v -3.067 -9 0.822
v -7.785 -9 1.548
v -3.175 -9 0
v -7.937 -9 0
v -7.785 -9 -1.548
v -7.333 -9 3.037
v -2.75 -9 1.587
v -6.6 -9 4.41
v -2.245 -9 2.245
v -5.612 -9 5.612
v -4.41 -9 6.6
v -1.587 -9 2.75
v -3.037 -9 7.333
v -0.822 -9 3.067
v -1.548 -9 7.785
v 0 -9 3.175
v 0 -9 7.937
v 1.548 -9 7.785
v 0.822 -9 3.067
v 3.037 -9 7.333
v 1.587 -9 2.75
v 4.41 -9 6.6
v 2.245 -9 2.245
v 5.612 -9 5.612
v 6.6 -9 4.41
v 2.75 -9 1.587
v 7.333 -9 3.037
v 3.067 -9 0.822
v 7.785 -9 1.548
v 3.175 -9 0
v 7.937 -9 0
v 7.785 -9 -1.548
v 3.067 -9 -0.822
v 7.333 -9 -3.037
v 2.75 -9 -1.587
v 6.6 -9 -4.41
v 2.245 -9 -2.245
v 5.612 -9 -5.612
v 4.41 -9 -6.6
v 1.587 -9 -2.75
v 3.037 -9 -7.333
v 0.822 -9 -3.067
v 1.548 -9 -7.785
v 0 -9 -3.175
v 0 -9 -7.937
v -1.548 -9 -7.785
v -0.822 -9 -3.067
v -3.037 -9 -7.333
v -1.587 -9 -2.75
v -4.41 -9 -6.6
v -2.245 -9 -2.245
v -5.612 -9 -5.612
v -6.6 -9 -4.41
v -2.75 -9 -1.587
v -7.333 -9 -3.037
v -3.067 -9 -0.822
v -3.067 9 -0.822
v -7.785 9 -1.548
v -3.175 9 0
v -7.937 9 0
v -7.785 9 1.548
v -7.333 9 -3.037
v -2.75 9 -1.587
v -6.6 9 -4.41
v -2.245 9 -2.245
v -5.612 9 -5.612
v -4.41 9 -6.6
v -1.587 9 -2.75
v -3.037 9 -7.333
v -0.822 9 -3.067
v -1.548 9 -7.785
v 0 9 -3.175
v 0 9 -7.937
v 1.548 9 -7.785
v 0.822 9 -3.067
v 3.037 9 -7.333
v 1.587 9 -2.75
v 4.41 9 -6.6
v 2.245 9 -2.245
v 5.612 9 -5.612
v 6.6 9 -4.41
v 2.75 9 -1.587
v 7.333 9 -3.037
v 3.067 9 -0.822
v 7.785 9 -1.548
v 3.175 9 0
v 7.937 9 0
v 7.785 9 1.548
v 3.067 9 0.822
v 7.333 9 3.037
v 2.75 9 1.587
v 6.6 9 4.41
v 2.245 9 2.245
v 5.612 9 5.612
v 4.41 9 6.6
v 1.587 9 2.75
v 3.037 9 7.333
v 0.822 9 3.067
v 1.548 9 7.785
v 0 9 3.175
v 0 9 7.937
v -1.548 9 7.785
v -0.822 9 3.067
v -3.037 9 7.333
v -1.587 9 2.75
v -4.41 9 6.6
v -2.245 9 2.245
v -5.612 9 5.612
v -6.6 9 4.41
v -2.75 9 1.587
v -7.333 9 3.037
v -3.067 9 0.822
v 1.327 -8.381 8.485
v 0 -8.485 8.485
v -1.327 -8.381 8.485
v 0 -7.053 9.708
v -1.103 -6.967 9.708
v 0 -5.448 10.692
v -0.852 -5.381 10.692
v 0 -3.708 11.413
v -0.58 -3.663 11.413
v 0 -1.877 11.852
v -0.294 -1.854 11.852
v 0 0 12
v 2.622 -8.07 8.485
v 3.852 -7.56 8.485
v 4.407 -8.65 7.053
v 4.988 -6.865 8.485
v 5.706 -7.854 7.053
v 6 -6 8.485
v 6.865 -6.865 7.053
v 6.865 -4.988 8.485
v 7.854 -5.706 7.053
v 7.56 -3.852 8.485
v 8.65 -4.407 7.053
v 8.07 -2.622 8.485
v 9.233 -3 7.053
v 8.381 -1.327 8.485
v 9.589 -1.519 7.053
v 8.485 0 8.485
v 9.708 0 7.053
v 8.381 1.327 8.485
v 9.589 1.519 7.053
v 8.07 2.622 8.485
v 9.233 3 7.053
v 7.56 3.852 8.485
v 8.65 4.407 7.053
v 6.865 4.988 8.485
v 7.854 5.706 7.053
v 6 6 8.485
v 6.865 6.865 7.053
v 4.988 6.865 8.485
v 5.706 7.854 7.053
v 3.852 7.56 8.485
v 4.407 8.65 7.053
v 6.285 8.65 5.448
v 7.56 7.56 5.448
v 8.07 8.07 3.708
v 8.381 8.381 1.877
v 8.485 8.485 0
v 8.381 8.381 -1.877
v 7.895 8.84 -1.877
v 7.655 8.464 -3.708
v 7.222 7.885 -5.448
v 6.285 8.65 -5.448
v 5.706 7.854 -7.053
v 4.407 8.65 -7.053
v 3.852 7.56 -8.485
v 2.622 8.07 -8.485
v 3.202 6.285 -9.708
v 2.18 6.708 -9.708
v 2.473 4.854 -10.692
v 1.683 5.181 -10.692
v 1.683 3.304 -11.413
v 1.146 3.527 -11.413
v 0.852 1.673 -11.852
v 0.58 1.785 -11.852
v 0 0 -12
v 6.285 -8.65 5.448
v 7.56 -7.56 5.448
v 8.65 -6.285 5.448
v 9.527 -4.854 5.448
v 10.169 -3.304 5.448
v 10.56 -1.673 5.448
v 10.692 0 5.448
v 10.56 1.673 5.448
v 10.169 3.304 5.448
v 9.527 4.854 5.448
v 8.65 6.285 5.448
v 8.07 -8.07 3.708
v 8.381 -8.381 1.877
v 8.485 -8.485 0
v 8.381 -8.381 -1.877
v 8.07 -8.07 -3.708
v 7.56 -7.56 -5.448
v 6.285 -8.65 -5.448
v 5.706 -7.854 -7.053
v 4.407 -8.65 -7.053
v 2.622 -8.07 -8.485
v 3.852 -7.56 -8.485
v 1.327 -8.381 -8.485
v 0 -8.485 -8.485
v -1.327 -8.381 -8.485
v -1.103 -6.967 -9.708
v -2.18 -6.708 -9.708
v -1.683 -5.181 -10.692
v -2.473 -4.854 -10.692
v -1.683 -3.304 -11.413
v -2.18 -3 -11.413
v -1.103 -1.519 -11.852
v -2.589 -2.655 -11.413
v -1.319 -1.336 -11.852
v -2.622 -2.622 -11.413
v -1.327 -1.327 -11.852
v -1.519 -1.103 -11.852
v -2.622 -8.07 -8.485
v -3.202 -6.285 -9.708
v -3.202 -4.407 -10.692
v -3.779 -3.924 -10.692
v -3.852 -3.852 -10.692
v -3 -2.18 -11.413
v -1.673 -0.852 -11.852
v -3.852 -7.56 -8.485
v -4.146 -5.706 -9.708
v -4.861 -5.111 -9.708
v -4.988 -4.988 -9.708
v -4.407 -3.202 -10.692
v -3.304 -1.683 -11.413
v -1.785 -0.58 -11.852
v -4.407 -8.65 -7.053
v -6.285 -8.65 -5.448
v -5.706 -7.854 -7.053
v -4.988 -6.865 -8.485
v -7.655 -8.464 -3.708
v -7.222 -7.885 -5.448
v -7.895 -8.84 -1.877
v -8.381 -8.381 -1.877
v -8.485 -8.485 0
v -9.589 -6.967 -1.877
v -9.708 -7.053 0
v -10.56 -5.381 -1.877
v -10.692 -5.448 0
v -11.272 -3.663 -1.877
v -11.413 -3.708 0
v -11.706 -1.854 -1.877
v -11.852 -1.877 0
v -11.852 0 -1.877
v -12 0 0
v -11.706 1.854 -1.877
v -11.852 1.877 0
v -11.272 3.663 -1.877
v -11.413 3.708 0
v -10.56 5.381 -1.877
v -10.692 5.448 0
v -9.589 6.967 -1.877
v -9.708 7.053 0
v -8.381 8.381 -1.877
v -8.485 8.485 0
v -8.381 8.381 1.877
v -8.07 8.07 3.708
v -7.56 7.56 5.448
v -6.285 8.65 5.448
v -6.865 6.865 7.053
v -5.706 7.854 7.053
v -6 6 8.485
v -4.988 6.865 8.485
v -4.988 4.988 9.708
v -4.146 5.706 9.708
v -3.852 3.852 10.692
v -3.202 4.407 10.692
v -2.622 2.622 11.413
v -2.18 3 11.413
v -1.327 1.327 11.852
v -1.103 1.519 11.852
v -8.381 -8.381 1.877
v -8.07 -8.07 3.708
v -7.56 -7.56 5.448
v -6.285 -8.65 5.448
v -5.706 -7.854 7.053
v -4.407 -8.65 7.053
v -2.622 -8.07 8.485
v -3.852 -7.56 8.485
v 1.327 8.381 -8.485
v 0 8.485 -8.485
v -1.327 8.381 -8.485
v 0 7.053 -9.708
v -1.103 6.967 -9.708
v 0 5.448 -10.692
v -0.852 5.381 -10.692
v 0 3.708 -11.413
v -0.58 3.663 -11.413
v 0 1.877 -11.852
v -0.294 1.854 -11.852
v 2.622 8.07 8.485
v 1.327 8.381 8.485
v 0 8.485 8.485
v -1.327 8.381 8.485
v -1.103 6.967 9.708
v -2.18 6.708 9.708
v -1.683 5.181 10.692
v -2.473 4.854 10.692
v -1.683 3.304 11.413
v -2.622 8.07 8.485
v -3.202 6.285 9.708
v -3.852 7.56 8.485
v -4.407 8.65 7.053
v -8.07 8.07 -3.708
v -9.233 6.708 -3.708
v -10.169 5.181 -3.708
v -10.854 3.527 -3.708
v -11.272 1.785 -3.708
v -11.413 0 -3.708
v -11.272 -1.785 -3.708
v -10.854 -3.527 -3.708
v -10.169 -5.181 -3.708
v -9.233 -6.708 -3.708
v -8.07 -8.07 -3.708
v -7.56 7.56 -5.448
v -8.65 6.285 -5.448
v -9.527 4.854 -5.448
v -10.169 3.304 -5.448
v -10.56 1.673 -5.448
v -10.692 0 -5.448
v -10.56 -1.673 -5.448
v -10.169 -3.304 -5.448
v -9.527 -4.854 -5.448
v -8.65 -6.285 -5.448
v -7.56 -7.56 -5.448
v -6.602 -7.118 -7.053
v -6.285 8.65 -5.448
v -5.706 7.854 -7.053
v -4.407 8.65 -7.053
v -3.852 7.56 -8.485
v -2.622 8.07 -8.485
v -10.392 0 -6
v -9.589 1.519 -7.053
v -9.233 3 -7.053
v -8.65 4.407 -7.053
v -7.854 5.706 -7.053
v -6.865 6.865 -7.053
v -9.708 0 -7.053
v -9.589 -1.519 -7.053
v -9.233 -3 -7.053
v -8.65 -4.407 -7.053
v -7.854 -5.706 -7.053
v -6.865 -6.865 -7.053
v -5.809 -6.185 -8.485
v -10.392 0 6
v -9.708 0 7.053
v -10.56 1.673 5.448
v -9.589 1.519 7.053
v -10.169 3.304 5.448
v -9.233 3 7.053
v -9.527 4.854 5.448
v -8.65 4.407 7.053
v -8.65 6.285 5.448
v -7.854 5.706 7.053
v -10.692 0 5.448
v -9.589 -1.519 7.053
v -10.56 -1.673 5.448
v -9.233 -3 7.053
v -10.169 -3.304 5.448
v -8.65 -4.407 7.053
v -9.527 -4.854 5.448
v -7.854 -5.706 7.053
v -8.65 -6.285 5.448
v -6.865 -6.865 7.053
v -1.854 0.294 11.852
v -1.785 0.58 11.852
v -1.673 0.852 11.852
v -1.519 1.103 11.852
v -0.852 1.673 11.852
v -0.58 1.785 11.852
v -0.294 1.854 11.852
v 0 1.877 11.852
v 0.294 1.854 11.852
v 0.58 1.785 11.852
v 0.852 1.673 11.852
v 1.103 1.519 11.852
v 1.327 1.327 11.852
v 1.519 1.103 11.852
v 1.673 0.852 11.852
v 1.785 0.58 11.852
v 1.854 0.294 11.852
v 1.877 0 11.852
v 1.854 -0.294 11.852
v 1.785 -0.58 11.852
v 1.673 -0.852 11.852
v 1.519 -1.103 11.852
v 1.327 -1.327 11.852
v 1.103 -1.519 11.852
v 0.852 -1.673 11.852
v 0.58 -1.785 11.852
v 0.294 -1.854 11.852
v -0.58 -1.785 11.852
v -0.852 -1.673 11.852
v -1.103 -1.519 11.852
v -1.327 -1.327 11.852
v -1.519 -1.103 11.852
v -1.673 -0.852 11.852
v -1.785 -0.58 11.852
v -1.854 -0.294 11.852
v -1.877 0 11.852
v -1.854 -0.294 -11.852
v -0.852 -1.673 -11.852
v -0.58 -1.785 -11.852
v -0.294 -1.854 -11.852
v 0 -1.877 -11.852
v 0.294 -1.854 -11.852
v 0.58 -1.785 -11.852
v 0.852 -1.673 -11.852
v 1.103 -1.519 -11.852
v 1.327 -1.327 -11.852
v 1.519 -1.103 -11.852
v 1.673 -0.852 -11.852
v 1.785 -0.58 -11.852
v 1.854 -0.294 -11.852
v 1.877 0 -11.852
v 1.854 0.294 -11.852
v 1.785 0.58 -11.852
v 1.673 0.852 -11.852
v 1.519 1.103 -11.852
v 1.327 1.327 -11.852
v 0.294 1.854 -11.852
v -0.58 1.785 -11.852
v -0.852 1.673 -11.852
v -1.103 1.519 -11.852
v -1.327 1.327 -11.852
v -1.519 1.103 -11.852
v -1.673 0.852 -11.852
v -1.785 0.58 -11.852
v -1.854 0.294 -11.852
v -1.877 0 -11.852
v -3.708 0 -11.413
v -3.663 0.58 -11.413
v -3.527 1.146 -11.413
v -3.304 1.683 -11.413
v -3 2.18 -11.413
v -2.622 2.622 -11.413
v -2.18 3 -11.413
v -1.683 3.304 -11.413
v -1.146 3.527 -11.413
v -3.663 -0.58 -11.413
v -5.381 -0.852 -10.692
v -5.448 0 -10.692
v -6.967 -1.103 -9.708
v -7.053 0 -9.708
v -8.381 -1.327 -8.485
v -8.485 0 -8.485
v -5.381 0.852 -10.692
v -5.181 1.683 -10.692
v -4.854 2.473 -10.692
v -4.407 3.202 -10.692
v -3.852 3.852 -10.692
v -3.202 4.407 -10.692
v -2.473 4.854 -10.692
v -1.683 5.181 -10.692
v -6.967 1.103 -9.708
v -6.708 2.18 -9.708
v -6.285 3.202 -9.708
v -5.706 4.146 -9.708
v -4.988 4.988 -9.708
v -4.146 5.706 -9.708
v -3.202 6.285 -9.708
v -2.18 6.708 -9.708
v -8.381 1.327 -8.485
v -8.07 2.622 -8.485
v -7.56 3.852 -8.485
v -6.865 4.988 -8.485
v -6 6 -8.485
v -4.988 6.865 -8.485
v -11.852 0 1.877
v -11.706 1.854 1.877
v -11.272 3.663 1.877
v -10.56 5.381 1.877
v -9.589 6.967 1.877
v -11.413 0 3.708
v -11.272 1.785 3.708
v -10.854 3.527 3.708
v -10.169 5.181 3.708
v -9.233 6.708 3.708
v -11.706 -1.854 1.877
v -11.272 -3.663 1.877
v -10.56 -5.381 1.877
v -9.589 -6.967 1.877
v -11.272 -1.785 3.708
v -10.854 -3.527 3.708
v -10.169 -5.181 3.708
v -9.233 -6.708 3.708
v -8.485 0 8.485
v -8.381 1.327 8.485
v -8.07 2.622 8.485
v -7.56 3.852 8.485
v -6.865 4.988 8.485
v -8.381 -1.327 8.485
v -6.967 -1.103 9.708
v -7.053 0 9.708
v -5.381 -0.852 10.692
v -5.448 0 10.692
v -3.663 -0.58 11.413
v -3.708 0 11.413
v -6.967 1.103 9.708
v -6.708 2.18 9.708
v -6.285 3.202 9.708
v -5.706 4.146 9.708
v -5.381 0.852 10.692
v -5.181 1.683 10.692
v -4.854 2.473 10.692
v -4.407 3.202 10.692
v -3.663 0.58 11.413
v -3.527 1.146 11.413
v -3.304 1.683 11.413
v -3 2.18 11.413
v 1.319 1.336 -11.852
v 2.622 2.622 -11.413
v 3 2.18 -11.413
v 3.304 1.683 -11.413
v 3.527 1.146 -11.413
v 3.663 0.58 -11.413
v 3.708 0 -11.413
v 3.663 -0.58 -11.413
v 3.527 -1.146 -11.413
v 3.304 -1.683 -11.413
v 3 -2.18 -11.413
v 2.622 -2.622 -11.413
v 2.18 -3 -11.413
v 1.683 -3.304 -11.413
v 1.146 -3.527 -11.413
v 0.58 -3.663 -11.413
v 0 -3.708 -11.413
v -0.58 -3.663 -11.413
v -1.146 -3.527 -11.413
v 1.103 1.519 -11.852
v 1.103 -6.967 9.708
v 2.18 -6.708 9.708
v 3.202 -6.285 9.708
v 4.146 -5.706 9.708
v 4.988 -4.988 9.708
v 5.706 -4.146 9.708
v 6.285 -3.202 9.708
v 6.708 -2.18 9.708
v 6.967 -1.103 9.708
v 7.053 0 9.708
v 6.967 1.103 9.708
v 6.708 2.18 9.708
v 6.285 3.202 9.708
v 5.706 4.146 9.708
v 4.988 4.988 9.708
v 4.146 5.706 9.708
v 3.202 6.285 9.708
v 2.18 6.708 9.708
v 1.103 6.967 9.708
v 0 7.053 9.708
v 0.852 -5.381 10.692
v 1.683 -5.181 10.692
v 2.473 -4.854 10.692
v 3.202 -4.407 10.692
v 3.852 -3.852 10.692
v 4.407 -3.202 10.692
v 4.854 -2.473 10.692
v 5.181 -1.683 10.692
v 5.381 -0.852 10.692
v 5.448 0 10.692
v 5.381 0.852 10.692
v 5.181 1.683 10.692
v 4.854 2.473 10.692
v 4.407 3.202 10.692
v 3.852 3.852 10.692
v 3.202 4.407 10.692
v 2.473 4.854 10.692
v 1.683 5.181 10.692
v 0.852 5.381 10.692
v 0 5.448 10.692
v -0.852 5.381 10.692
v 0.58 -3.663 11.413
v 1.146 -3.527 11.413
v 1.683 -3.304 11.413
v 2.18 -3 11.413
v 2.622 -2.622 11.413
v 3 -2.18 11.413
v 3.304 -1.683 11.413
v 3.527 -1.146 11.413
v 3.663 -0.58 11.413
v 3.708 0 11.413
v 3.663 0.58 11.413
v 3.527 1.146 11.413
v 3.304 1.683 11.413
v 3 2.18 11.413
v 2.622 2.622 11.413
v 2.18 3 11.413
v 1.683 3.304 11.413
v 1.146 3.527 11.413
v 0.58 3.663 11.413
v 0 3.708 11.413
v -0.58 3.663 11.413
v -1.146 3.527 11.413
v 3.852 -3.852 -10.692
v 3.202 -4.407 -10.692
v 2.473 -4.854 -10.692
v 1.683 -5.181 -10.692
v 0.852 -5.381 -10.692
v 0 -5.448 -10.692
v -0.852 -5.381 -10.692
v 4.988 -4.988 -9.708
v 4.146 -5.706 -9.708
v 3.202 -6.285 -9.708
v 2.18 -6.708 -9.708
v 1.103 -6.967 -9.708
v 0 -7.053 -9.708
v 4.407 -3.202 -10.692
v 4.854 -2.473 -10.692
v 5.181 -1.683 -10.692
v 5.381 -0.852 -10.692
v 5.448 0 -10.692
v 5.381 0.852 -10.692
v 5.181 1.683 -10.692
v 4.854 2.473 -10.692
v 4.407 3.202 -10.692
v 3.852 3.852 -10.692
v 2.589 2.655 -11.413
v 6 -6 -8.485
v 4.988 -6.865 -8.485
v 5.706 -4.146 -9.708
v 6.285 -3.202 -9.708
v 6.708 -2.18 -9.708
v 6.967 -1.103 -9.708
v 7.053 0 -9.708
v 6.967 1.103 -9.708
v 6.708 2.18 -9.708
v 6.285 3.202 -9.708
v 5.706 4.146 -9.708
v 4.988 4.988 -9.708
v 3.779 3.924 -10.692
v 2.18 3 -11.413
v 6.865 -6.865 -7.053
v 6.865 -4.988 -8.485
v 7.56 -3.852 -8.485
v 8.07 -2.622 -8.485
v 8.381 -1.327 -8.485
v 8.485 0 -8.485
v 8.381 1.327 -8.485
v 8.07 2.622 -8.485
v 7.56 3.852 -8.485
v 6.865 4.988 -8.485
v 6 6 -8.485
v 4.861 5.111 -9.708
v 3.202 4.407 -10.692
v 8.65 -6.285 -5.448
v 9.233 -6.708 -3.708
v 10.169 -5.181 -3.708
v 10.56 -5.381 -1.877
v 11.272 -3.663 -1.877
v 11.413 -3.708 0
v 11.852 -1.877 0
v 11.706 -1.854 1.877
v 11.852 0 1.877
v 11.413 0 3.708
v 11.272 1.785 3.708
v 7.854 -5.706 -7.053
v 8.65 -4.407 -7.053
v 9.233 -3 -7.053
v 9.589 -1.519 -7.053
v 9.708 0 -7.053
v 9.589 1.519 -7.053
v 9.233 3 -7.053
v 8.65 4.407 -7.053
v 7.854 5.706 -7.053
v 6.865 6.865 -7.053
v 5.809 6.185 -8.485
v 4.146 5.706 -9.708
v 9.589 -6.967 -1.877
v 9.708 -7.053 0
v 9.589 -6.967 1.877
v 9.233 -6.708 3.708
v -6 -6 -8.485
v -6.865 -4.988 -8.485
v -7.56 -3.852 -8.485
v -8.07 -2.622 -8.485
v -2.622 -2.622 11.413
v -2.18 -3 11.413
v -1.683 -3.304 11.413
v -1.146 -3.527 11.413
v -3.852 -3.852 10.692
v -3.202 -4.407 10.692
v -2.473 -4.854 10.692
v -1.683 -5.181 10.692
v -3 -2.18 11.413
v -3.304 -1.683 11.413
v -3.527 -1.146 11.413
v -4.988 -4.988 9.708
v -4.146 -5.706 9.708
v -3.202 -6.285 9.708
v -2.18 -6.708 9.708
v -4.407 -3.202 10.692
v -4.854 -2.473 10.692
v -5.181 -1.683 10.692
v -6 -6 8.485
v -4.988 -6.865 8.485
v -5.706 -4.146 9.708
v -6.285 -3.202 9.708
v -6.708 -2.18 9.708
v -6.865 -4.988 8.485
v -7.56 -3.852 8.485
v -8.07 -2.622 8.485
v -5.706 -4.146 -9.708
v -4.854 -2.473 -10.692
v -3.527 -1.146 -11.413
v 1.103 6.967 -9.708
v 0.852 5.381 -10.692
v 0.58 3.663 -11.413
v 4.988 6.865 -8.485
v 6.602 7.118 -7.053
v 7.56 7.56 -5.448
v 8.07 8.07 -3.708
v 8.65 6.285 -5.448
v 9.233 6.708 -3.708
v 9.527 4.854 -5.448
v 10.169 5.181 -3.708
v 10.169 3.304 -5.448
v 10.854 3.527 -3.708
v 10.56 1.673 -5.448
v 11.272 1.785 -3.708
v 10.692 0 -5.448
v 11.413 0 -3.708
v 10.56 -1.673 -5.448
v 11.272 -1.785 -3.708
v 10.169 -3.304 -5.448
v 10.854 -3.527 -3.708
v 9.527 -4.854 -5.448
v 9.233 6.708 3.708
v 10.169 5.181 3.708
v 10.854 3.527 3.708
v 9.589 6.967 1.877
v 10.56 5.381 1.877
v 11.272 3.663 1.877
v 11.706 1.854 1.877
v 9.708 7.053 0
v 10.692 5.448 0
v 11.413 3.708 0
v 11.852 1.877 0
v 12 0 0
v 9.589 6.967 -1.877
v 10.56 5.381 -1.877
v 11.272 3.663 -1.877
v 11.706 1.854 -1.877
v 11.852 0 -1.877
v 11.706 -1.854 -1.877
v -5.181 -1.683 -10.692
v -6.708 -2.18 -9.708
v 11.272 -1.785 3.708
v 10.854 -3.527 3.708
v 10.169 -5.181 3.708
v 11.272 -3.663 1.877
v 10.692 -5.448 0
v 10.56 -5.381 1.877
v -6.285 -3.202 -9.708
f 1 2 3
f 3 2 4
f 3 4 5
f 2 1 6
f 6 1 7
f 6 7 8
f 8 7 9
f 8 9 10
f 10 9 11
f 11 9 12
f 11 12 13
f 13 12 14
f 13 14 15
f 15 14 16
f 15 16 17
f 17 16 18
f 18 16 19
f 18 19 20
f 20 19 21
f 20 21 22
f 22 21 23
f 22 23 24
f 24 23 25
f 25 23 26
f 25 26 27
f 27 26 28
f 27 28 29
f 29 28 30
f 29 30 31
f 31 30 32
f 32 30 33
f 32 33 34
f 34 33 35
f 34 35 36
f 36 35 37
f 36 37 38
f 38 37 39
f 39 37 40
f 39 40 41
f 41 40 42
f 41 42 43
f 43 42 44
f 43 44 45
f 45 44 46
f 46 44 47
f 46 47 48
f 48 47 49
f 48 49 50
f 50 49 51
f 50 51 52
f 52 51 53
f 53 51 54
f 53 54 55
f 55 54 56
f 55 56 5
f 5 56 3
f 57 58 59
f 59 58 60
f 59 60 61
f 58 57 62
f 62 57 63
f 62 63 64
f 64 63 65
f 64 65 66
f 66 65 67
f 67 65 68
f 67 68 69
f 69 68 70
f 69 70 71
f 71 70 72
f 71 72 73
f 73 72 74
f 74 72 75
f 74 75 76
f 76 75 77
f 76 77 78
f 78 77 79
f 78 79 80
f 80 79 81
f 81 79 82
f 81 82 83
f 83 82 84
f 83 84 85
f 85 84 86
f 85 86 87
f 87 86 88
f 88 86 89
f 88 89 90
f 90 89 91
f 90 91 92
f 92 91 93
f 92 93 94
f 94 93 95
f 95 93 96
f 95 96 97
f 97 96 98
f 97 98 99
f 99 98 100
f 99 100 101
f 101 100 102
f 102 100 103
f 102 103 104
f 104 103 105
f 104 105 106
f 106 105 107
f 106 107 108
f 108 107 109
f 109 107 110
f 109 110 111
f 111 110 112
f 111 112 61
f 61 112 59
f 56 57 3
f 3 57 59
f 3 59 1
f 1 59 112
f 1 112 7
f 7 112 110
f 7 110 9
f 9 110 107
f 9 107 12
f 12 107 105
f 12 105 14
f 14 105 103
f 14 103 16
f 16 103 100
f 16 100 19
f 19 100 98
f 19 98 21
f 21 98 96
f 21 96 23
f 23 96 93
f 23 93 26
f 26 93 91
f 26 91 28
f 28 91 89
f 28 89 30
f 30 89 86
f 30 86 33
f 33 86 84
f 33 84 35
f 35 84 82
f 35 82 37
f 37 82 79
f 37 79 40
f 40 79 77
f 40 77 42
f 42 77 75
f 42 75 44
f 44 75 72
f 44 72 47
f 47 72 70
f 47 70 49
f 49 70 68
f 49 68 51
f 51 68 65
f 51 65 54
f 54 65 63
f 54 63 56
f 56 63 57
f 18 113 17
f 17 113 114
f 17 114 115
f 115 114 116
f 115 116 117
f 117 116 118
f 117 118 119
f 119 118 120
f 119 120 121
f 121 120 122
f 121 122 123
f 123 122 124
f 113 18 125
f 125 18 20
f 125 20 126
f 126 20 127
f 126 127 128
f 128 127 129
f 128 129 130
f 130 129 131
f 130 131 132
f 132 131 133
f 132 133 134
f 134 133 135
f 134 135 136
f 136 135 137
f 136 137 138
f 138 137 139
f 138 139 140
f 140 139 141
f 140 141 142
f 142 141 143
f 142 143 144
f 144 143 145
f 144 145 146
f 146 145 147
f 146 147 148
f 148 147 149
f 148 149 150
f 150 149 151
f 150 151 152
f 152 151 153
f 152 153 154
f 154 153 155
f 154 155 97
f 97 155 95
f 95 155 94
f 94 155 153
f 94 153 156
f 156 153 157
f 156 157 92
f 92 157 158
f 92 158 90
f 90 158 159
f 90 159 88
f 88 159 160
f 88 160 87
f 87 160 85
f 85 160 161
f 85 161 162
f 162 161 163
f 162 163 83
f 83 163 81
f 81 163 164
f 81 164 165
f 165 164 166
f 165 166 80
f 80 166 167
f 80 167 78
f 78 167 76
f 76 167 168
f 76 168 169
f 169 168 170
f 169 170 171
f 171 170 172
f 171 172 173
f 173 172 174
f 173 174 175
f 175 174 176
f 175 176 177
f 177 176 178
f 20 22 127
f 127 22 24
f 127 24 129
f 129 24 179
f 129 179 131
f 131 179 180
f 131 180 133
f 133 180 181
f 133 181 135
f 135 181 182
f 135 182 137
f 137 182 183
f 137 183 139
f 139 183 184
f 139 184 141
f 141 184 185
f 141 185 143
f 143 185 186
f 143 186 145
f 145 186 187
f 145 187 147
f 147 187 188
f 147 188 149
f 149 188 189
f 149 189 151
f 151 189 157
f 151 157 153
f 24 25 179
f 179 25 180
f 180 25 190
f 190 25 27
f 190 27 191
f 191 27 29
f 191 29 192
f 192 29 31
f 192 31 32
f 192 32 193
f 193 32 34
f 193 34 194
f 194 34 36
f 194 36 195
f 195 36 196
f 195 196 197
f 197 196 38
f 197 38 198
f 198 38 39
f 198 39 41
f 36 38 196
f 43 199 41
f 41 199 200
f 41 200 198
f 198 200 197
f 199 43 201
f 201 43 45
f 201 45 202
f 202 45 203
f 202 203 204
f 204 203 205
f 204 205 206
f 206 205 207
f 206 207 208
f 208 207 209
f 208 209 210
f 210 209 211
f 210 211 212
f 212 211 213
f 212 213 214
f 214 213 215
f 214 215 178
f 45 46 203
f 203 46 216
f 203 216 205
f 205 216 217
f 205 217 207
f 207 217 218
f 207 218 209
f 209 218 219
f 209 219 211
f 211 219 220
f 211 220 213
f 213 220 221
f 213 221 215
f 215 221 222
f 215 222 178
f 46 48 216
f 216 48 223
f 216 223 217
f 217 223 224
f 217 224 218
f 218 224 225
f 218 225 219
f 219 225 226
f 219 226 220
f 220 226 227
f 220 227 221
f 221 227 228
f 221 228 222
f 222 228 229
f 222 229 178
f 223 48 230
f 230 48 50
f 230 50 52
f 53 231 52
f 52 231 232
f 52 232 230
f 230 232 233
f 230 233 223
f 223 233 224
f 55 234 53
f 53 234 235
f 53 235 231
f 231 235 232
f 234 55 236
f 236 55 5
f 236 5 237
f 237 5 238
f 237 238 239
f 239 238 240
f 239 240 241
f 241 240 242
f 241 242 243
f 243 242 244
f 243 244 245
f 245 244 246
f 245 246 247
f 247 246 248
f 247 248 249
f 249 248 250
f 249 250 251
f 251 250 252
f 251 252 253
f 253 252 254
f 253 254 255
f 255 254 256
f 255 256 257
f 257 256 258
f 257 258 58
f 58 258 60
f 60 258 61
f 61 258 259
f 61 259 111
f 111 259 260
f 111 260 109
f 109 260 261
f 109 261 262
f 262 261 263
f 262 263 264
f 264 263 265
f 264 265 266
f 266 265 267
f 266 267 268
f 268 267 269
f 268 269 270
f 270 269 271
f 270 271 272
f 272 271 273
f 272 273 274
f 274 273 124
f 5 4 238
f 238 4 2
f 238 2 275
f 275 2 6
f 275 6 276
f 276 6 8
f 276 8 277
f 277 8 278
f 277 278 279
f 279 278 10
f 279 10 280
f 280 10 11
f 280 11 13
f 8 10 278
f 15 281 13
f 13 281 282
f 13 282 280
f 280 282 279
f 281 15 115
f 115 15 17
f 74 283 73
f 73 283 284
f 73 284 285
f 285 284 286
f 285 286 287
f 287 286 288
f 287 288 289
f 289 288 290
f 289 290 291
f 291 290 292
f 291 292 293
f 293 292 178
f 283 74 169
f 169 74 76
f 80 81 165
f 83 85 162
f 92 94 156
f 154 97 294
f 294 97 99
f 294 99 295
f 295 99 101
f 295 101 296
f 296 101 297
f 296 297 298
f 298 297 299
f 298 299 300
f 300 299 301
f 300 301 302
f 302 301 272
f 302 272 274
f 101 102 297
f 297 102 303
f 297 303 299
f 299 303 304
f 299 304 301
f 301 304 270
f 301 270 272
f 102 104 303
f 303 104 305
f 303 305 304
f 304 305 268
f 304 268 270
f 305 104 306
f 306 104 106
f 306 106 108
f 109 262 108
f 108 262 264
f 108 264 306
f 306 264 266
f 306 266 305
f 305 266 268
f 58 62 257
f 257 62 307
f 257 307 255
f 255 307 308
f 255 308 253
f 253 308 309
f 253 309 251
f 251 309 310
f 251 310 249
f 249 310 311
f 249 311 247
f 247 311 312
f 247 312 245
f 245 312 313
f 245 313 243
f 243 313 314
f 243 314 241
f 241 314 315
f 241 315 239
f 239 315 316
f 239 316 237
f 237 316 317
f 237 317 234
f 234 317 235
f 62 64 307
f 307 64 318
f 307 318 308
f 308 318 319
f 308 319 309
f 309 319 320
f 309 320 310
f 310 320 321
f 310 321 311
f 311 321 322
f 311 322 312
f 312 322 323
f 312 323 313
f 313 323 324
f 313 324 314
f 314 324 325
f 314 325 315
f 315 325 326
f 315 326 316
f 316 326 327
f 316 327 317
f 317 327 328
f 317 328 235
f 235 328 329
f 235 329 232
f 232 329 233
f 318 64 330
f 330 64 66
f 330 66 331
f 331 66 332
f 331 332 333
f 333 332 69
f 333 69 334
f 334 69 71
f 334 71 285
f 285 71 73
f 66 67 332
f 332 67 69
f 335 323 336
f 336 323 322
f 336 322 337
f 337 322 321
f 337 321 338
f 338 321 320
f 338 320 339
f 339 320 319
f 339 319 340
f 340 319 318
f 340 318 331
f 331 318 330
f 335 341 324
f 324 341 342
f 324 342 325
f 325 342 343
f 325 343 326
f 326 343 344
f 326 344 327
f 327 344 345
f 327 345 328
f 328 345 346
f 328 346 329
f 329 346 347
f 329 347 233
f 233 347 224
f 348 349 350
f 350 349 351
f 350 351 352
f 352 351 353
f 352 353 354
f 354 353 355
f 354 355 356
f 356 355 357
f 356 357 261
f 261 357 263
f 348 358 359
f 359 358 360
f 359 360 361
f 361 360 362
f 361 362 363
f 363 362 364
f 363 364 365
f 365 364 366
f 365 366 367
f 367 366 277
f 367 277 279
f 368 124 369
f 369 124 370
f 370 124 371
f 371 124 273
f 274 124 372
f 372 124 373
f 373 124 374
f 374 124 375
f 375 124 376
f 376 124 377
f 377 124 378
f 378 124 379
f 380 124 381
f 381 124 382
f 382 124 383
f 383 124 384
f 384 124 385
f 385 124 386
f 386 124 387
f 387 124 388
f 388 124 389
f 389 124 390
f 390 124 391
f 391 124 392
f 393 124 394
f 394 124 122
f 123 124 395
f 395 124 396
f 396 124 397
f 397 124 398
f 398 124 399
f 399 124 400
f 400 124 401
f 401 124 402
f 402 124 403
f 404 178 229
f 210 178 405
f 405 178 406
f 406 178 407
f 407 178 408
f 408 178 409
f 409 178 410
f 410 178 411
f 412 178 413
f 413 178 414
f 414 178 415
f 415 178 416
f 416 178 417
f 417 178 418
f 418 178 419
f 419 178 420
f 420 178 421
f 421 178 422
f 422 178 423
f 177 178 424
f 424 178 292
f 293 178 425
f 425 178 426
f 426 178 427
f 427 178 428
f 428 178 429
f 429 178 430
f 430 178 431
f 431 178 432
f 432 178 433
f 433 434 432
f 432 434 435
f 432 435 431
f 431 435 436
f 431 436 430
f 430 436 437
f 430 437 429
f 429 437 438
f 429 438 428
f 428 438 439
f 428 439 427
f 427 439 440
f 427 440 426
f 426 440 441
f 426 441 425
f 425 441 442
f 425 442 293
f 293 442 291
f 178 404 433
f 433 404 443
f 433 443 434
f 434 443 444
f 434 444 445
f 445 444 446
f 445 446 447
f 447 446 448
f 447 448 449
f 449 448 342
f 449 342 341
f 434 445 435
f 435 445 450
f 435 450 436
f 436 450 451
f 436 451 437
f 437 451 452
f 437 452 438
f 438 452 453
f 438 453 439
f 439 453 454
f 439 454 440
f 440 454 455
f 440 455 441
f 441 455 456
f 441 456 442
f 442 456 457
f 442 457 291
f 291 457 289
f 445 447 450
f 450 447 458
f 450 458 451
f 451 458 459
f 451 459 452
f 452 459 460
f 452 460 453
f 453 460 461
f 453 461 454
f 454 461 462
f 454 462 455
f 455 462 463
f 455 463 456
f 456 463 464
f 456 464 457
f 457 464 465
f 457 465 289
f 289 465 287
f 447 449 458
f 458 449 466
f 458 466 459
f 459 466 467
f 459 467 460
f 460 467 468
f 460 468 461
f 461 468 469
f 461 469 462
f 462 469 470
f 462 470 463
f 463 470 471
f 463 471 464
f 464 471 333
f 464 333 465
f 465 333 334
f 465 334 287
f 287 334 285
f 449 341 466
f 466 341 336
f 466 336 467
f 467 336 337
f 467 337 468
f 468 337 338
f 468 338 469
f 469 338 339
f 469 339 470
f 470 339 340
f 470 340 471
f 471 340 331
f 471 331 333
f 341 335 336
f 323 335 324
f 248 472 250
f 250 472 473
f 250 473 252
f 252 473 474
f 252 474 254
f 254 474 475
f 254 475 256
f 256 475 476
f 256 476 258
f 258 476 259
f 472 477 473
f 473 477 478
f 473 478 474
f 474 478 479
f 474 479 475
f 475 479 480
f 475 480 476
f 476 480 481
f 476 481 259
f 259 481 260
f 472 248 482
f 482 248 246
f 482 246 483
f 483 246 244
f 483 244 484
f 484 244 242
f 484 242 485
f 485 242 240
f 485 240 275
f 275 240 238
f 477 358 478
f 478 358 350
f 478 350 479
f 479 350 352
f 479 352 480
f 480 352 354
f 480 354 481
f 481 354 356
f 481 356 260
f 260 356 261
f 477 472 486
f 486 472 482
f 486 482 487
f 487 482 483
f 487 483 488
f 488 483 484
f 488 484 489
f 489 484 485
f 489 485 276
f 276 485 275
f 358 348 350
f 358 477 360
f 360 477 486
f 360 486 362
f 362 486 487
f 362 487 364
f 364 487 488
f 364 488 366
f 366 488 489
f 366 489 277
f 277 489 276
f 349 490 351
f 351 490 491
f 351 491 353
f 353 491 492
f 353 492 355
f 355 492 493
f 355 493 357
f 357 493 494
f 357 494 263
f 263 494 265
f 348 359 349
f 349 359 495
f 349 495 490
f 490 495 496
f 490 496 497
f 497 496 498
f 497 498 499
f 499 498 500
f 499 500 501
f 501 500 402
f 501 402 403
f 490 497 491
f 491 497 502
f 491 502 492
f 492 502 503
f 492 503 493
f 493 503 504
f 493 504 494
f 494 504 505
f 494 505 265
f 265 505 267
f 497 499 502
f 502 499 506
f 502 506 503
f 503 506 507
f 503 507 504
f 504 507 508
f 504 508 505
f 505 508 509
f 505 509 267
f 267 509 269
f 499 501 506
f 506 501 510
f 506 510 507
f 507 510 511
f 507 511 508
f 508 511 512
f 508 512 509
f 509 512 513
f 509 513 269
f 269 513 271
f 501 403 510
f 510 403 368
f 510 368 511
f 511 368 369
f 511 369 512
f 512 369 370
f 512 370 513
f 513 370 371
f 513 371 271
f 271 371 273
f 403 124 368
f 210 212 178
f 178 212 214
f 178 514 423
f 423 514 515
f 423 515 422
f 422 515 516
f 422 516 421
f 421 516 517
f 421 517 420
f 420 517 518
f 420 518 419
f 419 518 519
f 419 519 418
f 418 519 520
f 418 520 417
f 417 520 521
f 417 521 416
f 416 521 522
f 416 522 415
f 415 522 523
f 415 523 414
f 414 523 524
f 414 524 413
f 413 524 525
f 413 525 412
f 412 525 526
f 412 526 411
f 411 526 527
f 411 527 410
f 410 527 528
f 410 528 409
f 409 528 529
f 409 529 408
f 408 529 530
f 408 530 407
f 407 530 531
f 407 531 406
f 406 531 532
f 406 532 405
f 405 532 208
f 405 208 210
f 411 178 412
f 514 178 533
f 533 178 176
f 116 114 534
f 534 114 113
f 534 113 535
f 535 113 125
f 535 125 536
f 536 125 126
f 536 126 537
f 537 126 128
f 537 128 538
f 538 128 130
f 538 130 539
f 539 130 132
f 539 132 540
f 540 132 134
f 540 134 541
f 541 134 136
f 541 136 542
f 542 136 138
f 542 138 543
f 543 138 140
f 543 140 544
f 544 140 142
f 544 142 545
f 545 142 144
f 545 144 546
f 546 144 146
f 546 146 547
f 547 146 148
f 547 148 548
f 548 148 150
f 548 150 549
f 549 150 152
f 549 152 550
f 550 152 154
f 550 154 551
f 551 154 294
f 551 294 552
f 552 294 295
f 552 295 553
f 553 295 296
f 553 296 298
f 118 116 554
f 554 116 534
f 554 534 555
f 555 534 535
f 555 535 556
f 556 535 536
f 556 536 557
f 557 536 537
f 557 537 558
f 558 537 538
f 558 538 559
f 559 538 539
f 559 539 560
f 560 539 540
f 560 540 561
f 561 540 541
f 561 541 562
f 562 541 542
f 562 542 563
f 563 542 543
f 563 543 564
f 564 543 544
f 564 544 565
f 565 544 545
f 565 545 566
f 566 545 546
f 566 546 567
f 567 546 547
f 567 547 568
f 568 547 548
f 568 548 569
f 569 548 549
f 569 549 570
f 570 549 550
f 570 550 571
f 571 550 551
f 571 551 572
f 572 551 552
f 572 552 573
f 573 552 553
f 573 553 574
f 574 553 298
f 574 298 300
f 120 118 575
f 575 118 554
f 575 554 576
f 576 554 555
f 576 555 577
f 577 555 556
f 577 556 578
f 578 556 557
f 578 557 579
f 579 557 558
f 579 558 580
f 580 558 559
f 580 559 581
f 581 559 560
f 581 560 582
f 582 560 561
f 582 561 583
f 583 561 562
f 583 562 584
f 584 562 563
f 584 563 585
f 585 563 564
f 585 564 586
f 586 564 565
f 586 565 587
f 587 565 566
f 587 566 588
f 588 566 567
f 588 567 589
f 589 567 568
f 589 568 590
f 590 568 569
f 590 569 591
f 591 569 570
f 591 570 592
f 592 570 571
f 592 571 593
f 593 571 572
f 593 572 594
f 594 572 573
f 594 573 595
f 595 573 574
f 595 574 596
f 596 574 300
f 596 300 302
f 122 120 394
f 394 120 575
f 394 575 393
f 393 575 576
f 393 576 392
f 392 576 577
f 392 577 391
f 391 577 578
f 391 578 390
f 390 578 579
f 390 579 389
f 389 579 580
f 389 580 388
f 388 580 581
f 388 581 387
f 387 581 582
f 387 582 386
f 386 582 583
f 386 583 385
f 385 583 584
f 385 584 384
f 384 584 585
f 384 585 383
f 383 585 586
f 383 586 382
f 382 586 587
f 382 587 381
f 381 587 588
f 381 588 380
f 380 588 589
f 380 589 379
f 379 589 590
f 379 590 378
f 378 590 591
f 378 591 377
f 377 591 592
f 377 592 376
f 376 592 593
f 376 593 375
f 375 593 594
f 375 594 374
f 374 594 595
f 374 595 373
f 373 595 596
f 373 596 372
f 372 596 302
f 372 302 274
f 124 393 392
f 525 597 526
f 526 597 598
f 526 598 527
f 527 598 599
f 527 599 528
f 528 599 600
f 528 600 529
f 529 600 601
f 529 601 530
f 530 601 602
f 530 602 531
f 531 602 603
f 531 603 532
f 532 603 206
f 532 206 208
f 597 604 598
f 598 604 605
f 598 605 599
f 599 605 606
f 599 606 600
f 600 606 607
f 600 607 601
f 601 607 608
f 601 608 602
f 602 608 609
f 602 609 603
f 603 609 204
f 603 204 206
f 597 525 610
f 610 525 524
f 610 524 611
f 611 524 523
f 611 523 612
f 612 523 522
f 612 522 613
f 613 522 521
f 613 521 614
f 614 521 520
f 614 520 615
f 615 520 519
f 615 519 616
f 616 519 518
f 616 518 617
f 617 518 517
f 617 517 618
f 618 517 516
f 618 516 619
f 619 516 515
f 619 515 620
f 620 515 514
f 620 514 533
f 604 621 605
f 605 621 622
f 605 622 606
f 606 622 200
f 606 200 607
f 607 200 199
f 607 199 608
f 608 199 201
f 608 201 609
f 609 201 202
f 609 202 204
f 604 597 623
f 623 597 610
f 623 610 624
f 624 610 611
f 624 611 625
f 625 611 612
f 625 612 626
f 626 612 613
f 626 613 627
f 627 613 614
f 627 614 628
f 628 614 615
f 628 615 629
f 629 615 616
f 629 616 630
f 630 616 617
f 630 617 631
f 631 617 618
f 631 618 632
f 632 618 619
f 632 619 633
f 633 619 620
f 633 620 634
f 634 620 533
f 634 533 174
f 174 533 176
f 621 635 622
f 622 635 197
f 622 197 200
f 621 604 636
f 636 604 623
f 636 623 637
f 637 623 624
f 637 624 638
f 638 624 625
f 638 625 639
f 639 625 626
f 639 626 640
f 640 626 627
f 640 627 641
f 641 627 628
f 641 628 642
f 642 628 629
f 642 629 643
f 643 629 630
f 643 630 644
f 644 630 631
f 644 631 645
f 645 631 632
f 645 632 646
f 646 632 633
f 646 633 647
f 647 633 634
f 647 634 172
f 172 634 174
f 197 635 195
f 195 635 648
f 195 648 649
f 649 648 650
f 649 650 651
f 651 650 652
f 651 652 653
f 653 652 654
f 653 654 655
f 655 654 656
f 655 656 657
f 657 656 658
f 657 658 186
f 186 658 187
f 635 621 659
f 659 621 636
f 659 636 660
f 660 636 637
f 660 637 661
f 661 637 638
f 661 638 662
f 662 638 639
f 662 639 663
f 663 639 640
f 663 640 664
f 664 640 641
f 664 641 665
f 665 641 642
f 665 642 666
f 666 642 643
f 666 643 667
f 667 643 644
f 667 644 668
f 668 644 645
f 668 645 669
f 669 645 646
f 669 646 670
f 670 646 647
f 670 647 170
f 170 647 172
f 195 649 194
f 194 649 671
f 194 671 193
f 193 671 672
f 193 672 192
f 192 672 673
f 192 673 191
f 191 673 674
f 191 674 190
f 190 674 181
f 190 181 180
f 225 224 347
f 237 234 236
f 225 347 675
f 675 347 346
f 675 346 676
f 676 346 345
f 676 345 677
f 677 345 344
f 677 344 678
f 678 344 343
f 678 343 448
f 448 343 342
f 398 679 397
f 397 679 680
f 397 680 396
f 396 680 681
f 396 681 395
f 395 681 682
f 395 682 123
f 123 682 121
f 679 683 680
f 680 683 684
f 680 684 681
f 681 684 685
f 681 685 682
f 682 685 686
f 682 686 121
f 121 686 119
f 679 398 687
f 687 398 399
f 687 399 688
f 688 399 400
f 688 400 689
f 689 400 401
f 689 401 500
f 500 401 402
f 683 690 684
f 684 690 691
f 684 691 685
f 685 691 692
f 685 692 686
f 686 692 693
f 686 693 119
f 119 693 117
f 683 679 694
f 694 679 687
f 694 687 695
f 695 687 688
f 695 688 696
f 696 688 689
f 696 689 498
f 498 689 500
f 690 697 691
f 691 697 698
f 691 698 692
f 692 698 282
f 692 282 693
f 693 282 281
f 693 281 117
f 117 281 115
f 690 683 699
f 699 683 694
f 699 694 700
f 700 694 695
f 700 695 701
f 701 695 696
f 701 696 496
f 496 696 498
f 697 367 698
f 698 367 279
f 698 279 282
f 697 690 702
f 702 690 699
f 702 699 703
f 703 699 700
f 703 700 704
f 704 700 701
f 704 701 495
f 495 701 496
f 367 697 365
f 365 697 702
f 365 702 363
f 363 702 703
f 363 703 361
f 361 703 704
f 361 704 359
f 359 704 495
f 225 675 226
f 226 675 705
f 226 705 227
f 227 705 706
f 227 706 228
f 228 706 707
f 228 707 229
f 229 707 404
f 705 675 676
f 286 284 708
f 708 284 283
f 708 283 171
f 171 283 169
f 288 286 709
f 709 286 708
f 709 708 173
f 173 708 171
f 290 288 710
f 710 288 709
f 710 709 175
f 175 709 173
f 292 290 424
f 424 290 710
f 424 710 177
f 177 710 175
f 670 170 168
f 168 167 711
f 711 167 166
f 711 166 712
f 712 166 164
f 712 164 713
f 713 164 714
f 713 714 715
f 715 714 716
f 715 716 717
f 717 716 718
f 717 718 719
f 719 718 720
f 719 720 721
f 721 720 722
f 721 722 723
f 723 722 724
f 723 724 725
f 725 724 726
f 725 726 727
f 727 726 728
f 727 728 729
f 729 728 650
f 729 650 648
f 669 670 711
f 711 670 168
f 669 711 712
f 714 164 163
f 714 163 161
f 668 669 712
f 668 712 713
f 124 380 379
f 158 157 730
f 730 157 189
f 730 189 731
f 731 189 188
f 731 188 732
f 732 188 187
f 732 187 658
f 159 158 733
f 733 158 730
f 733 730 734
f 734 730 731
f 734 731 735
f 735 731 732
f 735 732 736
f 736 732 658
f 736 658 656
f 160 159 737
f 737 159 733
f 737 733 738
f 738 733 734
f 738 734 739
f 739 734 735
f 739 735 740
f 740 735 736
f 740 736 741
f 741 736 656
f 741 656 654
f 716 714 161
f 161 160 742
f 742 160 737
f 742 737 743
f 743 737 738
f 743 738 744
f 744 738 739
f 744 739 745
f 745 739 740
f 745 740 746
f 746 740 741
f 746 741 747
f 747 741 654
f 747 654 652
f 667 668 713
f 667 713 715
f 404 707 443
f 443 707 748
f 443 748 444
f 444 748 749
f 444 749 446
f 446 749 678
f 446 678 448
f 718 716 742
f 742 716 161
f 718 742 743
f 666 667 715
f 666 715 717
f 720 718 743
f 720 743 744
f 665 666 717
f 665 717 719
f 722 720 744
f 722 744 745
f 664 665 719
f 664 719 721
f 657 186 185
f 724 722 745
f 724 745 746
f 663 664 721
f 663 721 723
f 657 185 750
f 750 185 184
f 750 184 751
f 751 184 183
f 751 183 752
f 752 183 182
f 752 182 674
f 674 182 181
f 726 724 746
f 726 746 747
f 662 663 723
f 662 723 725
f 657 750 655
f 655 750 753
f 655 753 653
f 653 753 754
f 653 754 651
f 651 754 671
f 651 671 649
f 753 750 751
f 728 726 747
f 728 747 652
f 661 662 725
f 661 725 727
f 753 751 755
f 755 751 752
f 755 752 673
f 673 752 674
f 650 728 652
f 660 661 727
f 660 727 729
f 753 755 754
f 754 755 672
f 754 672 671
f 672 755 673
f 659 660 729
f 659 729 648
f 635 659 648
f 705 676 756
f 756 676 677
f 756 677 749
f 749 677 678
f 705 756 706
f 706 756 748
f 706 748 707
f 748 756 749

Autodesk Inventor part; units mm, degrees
ref_plane "YZ Plane" through (0, 0, 0) normal (1, 0, 0) x (0, 1, 0)
ref_plane "XY Plane" through (0, 0, 0) normal (0, 0, 1) x (1, 0, 0)
sketch "Sketch1" plane through (0, 0, 0) normal (0, 0, 1) x (1, 0, 0)
  arc A0 (0, -12) -> (0, 12) centre (0, 0) ccw
  line L0 (0, 12) -> (0, -12)
  dimension "d0" = 24
revolve "Revolution1" add sketch "Sketch1" angle 360 about axis through (0, 12, 0) along (0, -1, 0)
sketch "Sketch2" plane through (0, 0, 0) normal (0, 1, 0) x (-1, 0, 0)
  circle A0 centre (0, 0) radius 3.175
  dimension "d2" = 6.35
extrude "Extrusion1" cut sketch "Sketch2" along normal through all both and the other way through all
ref_plane "Work Plane1" through (0, 12, 0) normal (0, 1, 0) x (-1, 0, 0)
sketch "Sketch3" plane through (0, 12, 0) normal (0, 1, 0) x (-1, 0, 0)
  circle A0 centre (0, 0) radius 12 projected
extrude "Extrusion2" cut sketch "Sketch3" against normal blind 3
mirror "Mirror1" about plane through (0, 0, 0) normal (0, 1, 0) of "Extrusion2"
properties part number "shifter ball"
